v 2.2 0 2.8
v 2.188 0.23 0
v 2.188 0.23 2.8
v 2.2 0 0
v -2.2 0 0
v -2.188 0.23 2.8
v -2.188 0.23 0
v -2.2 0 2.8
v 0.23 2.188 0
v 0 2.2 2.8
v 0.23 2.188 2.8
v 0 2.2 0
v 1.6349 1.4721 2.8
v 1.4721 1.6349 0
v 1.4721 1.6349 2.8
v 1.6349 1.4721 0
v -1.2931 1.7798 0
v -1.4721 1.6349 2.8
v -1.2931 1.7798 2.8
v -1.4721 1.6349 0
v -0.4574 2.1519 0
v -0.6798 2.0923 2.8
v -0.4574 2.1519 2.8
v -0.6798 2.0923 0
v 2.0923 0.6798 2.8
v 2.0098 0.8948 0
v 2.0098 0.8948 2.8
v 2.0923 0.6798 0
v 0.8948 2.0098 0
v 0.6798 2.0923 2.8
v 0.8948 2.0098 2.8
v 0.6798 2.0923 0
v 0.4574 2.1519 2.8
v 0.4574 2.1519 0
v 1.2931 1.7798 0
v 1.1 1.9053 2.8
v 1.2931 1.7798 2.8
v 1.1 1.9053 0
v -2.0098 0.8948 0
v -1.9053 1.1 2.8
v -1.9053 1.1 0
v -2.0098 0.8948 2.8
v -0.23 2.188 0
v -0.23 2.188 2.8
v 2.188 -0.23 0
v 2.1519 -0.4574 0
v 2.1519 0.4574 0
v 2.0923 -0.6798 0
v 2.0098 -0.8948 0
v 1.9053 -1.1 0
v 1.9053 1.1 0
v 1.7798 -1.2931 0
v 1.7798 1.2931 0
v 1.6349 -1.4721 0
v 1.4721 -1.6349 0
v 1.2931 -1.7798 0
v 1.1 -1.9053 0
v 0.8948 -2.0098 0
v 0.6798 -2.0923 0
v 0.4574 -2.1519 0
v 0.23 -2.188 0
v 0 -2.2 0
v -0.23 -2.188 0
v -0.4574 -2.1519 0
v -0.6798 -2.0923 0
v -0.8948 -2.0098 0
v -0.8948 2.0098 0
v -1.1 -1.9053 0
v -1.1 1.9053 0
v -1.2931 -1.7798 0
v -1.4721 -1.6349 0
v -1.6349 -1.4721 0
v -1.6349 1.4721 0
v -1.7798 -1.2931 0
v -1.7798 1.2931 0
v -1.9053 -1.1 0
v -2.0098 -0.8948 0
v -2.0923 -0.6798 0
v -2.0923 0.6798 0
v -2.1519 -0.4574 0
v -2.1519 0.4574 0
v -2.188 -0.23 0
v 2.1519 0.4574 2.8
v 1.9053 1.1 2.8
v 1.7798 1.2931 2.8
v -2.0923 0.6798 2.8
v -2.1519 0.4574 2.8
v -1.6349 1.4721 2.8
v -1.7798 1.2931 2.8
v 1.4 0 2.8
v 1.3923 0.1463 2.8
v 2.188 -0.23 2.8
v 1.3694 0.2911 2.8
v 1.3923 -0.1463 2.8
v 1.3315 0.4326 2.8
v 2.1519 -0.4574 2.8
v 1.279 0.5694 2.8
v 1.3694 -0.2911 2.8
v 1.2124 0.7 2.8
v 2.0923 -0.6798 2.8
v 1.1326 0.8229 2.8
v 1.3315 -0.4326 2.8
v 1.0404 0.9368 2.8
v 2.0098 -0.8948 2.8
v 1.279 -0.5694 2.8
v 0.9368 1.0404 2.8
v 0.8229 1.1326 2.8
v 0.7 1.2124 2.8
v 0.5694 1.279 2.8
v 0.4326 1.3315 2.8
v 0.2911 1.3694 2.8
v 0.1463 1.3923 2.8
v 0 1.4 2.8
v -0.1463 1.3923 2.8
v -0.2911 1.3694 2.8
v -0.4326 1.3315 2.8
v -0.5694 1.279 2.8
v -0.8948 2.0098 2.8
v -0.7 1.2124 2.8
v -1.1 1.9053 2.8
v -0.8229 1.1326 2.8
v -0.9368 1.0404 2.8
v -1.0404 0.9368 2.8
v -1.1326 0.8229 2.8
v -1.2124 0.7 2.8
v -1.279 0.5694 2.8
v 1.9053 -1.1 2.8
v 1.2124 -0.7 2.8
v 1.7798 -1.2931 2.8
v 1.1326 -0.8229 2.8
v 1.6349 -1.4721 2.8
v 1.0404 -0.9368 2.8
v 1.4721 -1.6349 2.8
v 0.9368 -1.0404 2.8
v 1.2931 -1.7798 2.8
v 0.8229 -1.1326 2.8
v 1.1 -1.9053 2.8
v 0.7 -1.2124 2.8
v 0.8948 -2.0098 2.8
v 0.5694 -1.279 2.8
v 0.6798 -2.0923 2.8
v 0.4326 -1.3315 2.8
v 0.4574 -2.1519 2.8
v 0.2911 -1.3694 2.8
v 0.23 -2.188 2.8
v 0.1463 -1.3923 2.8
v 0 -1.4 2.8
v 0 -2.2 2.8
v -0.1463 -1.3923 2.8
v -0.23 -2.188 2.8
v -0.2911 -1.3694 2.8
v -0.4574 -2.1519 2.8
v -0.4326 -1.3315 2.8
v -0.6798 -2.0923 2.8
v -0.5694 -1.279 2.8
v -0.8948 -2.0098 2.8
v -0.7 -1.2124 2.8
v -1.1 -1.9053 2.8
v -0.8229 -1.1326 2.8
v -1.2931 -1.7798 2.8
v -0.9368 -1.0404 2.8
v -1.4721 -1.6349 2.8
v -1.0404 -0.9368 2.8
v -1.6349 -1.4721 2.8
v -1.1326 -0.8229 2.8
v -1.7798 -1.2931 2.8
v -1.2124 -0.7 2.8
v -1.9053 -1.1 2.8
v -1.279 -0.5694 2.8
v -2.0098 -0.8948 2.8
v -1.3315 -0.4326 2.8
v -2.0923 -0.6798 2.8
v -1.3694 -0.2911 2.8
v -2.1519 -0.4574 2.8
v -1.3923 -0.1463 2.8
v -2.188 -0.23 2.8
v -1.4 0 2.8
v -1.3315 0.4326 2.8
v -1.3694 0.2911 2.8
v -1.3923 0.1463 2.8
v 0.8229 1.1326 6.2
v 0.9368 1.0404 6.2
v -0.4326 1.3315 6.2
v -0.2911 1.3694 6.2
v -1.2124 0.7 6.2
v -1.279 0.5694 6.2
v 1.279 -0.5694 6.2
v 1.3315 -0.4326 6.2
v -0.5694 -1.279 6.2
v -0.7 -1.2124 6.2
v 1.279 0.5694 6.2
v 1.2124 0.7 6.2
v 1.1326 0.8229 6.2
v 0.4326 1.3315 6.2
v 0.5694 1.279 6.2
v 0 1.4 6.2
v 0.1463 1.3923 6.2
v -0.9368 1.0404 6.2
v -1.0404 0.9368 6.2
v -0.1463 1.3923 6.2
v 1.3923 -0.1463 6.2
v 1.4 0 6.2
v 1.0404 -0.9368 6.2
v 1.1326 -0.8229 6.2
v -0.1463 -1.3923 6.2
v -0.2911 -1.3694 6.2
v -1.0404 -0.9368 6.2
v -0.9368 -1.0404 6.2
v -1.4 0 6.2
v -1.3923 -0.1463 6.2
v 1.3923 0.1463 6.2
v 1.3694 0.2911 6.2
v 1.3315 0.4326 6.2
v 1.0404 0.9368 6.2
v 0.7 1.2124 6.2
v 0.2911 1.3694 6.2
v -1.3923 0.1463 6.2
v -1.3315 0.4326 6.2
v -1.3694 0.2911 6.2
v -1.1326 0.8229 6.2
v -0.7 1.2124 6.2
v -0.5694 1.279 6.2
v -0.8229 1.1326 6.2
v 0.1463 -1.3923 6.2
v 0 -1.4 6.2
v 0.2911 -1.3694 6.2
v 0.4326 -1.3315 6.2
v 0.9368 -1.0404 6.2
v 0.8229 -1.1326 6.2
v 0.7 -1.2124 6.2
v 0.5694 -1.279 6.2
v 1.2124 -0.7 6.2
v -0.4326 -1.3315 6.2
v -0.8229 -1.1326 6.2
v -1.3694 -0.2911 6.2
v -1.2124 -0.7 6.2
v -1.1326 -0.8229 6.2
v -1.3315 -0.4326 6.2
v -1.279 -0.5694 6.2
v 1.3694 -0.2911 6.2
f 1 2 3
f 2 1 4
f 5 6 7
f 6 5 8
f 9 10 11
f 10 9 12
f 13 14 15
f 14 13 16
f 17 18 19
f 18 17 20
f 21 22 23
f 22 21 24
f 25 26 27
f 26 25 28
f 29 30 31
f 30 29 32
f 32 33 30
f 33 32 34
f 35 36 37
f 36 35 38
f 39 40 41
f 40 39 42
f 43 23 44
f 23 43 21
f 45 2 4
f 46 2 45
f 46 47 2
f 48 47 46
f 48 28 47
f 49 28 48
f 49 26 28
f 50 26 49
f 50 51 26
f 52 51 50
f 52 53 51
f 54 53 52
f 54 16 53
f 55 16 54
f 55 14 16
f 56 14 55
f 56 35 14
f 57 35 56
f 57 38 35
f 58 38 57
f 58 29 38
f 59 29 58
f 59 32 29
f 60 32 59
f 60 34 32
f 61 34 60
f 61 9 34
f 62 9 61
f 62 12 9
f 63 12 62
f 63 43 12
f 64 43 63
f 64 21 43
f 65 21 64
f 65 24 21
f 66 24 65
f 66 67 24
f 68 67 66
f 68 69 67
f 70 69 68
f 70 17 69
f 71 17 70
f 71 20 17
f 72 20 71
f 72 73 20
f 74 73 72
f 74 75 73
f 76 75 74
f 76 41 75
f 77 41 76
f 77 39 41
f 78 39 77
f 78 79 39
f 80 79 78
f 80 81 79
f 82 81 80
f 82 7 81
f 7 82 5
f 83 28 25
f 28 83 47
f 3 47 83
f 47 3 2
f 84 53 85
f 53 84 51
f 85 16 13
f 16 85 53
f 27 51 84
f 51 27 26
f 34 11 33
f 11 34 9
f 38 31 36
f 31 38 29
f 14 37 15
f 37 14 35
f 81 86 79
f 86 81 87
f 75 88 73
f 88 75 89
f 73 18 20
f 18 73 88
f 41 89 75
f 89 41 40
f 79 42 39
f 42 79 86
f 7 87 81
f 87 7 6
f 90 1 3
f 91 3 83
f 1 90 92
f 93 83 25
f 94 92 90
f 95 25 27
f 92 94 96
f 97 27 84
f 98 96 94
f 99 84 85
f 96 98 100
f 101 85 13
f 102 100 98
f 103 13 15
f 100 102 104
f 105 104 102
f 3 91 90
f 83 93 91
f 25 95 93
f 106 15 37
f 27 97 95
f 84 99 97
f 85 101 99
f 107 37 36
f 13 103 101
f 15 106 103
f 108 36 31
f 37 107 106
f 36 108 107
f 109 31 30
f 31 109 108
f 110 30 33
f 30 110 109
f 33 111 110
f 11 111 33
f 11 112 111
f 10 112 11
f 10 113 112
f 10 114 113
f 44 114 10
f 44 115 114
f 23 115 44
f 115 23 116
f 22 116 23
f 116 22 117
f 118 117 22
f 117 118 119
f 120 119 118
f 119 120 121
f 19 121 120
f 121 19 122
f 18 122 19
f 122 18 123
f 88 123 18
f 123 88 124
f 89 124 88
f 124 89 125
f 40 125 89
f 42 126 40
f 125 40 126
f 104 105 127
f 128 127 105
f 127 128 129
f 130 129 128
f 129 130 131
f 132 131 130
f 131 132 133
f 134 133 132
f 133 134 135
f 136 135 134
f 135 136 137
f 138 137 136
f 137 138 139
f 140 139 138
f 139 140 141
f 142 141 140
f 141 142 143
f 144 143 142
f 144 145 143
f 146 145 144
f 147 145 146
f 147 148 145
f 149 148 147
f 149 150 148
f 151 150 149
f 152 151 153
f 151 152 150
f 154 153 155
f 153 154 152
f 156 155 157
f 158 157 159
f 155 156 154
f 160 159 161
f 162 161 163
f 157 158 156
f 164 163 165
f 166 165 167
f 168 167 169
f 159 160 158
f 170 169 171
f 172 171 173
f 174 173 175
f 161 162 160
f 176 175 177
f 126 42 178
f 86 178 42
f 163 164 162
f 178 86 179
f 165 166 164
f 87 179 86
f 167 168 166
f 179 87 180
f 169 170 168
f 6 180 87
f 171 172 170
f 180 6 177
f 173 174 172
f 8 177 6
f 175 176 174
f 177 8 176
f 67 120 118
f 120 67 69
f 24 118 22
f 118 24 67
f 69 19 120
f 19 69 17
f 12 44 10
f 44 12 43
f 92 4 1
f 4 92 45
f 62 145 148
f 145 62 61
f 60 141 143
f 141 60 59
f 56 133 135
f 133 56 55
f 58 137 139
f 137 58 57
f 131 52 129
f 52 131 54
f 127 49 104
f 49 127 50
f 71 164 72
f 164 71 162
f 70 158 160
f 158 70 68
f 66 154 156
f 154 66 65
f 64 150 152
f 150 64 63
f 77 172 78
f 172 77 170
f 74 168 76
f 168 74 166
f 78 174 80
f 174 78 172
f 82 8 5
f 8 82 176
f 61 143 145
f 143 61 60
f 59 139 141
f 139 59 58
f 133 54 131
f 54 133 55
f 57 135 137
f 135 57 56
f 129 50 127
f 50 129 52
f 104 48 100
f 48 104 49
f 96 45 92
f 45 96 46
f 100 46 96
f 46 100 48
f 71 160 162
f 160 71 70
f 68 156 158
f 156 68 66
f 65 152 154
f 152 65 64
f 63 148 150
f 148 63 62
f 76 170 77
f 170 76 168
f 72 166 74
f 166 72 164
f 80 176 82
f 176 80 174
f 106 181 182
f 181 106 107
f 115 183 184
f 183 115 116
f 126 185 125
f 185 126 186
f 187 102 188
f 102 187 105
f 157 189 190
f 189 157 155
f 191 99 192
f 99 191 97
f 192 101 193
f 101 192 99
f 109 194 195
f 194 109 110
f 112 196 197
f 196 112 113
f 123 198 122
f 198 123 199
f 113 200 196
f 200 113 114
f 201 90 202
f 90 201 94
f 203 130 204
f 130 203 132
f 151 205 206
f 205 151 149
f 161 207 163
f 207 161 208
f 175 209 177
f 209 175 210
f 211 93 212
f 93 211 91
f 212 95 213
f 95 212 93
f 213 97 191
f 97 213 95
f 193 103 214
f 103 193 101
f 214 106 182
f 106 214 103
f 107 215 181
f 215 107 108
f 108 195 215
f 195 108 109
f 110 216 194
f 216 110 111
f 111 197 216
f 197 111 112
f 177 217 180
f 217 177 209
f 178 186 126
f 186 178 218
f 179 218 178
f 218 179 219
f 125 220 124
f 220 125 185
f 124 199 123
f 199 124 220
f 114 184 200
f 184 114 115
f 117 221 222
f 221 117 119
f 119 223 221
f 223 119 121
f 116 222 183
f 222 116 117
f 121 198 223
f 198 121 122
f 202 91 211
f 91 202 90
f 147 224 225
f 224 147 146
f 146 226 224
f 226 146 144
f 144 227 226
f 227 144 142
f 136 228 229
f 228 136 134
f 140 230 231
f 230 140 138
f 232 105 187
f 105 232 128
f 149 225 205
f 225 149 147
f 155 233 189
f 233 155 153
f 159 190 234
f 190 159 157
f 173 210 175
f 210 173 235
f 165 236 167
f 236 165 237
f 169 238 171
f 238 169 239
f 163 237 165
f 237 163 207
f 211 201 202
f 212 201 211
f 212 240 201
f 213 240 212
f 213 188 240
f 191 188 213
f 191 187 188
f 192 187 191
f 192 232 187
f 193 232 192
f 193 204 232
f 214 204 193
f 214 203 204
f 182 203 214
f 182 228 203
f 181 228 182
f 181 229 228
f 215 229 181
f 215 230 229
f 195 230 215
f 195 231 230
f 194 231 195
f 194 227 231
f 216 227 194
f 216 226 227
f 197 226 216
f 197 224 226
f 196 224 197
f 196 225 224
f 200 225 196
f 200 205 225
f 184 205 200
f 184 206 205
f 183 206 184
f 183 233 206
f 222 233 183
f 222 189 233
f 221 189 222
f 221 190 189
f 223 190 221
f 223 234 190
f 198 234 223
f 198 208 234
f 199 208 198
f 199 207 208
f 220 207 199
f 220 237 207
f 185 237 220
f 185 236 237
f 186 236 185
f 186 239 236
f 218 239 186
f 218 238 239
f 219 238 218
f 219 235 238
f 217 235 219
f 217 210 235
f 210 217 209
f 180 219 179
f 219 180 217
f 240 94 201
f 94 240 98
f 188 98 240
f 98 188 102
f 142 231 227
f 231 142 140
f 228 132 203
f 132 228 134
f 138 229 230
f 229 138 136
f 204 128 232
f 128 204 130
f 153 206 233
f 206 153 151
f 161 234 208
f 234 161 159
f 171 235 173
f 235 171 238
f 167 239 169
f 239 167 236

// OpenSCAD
cylinder(d=4.4, h=2.8, $fn=60);
translate([0, 0, 2.8]) cylinder(d=2.8, h=3.4, $fn=60);
